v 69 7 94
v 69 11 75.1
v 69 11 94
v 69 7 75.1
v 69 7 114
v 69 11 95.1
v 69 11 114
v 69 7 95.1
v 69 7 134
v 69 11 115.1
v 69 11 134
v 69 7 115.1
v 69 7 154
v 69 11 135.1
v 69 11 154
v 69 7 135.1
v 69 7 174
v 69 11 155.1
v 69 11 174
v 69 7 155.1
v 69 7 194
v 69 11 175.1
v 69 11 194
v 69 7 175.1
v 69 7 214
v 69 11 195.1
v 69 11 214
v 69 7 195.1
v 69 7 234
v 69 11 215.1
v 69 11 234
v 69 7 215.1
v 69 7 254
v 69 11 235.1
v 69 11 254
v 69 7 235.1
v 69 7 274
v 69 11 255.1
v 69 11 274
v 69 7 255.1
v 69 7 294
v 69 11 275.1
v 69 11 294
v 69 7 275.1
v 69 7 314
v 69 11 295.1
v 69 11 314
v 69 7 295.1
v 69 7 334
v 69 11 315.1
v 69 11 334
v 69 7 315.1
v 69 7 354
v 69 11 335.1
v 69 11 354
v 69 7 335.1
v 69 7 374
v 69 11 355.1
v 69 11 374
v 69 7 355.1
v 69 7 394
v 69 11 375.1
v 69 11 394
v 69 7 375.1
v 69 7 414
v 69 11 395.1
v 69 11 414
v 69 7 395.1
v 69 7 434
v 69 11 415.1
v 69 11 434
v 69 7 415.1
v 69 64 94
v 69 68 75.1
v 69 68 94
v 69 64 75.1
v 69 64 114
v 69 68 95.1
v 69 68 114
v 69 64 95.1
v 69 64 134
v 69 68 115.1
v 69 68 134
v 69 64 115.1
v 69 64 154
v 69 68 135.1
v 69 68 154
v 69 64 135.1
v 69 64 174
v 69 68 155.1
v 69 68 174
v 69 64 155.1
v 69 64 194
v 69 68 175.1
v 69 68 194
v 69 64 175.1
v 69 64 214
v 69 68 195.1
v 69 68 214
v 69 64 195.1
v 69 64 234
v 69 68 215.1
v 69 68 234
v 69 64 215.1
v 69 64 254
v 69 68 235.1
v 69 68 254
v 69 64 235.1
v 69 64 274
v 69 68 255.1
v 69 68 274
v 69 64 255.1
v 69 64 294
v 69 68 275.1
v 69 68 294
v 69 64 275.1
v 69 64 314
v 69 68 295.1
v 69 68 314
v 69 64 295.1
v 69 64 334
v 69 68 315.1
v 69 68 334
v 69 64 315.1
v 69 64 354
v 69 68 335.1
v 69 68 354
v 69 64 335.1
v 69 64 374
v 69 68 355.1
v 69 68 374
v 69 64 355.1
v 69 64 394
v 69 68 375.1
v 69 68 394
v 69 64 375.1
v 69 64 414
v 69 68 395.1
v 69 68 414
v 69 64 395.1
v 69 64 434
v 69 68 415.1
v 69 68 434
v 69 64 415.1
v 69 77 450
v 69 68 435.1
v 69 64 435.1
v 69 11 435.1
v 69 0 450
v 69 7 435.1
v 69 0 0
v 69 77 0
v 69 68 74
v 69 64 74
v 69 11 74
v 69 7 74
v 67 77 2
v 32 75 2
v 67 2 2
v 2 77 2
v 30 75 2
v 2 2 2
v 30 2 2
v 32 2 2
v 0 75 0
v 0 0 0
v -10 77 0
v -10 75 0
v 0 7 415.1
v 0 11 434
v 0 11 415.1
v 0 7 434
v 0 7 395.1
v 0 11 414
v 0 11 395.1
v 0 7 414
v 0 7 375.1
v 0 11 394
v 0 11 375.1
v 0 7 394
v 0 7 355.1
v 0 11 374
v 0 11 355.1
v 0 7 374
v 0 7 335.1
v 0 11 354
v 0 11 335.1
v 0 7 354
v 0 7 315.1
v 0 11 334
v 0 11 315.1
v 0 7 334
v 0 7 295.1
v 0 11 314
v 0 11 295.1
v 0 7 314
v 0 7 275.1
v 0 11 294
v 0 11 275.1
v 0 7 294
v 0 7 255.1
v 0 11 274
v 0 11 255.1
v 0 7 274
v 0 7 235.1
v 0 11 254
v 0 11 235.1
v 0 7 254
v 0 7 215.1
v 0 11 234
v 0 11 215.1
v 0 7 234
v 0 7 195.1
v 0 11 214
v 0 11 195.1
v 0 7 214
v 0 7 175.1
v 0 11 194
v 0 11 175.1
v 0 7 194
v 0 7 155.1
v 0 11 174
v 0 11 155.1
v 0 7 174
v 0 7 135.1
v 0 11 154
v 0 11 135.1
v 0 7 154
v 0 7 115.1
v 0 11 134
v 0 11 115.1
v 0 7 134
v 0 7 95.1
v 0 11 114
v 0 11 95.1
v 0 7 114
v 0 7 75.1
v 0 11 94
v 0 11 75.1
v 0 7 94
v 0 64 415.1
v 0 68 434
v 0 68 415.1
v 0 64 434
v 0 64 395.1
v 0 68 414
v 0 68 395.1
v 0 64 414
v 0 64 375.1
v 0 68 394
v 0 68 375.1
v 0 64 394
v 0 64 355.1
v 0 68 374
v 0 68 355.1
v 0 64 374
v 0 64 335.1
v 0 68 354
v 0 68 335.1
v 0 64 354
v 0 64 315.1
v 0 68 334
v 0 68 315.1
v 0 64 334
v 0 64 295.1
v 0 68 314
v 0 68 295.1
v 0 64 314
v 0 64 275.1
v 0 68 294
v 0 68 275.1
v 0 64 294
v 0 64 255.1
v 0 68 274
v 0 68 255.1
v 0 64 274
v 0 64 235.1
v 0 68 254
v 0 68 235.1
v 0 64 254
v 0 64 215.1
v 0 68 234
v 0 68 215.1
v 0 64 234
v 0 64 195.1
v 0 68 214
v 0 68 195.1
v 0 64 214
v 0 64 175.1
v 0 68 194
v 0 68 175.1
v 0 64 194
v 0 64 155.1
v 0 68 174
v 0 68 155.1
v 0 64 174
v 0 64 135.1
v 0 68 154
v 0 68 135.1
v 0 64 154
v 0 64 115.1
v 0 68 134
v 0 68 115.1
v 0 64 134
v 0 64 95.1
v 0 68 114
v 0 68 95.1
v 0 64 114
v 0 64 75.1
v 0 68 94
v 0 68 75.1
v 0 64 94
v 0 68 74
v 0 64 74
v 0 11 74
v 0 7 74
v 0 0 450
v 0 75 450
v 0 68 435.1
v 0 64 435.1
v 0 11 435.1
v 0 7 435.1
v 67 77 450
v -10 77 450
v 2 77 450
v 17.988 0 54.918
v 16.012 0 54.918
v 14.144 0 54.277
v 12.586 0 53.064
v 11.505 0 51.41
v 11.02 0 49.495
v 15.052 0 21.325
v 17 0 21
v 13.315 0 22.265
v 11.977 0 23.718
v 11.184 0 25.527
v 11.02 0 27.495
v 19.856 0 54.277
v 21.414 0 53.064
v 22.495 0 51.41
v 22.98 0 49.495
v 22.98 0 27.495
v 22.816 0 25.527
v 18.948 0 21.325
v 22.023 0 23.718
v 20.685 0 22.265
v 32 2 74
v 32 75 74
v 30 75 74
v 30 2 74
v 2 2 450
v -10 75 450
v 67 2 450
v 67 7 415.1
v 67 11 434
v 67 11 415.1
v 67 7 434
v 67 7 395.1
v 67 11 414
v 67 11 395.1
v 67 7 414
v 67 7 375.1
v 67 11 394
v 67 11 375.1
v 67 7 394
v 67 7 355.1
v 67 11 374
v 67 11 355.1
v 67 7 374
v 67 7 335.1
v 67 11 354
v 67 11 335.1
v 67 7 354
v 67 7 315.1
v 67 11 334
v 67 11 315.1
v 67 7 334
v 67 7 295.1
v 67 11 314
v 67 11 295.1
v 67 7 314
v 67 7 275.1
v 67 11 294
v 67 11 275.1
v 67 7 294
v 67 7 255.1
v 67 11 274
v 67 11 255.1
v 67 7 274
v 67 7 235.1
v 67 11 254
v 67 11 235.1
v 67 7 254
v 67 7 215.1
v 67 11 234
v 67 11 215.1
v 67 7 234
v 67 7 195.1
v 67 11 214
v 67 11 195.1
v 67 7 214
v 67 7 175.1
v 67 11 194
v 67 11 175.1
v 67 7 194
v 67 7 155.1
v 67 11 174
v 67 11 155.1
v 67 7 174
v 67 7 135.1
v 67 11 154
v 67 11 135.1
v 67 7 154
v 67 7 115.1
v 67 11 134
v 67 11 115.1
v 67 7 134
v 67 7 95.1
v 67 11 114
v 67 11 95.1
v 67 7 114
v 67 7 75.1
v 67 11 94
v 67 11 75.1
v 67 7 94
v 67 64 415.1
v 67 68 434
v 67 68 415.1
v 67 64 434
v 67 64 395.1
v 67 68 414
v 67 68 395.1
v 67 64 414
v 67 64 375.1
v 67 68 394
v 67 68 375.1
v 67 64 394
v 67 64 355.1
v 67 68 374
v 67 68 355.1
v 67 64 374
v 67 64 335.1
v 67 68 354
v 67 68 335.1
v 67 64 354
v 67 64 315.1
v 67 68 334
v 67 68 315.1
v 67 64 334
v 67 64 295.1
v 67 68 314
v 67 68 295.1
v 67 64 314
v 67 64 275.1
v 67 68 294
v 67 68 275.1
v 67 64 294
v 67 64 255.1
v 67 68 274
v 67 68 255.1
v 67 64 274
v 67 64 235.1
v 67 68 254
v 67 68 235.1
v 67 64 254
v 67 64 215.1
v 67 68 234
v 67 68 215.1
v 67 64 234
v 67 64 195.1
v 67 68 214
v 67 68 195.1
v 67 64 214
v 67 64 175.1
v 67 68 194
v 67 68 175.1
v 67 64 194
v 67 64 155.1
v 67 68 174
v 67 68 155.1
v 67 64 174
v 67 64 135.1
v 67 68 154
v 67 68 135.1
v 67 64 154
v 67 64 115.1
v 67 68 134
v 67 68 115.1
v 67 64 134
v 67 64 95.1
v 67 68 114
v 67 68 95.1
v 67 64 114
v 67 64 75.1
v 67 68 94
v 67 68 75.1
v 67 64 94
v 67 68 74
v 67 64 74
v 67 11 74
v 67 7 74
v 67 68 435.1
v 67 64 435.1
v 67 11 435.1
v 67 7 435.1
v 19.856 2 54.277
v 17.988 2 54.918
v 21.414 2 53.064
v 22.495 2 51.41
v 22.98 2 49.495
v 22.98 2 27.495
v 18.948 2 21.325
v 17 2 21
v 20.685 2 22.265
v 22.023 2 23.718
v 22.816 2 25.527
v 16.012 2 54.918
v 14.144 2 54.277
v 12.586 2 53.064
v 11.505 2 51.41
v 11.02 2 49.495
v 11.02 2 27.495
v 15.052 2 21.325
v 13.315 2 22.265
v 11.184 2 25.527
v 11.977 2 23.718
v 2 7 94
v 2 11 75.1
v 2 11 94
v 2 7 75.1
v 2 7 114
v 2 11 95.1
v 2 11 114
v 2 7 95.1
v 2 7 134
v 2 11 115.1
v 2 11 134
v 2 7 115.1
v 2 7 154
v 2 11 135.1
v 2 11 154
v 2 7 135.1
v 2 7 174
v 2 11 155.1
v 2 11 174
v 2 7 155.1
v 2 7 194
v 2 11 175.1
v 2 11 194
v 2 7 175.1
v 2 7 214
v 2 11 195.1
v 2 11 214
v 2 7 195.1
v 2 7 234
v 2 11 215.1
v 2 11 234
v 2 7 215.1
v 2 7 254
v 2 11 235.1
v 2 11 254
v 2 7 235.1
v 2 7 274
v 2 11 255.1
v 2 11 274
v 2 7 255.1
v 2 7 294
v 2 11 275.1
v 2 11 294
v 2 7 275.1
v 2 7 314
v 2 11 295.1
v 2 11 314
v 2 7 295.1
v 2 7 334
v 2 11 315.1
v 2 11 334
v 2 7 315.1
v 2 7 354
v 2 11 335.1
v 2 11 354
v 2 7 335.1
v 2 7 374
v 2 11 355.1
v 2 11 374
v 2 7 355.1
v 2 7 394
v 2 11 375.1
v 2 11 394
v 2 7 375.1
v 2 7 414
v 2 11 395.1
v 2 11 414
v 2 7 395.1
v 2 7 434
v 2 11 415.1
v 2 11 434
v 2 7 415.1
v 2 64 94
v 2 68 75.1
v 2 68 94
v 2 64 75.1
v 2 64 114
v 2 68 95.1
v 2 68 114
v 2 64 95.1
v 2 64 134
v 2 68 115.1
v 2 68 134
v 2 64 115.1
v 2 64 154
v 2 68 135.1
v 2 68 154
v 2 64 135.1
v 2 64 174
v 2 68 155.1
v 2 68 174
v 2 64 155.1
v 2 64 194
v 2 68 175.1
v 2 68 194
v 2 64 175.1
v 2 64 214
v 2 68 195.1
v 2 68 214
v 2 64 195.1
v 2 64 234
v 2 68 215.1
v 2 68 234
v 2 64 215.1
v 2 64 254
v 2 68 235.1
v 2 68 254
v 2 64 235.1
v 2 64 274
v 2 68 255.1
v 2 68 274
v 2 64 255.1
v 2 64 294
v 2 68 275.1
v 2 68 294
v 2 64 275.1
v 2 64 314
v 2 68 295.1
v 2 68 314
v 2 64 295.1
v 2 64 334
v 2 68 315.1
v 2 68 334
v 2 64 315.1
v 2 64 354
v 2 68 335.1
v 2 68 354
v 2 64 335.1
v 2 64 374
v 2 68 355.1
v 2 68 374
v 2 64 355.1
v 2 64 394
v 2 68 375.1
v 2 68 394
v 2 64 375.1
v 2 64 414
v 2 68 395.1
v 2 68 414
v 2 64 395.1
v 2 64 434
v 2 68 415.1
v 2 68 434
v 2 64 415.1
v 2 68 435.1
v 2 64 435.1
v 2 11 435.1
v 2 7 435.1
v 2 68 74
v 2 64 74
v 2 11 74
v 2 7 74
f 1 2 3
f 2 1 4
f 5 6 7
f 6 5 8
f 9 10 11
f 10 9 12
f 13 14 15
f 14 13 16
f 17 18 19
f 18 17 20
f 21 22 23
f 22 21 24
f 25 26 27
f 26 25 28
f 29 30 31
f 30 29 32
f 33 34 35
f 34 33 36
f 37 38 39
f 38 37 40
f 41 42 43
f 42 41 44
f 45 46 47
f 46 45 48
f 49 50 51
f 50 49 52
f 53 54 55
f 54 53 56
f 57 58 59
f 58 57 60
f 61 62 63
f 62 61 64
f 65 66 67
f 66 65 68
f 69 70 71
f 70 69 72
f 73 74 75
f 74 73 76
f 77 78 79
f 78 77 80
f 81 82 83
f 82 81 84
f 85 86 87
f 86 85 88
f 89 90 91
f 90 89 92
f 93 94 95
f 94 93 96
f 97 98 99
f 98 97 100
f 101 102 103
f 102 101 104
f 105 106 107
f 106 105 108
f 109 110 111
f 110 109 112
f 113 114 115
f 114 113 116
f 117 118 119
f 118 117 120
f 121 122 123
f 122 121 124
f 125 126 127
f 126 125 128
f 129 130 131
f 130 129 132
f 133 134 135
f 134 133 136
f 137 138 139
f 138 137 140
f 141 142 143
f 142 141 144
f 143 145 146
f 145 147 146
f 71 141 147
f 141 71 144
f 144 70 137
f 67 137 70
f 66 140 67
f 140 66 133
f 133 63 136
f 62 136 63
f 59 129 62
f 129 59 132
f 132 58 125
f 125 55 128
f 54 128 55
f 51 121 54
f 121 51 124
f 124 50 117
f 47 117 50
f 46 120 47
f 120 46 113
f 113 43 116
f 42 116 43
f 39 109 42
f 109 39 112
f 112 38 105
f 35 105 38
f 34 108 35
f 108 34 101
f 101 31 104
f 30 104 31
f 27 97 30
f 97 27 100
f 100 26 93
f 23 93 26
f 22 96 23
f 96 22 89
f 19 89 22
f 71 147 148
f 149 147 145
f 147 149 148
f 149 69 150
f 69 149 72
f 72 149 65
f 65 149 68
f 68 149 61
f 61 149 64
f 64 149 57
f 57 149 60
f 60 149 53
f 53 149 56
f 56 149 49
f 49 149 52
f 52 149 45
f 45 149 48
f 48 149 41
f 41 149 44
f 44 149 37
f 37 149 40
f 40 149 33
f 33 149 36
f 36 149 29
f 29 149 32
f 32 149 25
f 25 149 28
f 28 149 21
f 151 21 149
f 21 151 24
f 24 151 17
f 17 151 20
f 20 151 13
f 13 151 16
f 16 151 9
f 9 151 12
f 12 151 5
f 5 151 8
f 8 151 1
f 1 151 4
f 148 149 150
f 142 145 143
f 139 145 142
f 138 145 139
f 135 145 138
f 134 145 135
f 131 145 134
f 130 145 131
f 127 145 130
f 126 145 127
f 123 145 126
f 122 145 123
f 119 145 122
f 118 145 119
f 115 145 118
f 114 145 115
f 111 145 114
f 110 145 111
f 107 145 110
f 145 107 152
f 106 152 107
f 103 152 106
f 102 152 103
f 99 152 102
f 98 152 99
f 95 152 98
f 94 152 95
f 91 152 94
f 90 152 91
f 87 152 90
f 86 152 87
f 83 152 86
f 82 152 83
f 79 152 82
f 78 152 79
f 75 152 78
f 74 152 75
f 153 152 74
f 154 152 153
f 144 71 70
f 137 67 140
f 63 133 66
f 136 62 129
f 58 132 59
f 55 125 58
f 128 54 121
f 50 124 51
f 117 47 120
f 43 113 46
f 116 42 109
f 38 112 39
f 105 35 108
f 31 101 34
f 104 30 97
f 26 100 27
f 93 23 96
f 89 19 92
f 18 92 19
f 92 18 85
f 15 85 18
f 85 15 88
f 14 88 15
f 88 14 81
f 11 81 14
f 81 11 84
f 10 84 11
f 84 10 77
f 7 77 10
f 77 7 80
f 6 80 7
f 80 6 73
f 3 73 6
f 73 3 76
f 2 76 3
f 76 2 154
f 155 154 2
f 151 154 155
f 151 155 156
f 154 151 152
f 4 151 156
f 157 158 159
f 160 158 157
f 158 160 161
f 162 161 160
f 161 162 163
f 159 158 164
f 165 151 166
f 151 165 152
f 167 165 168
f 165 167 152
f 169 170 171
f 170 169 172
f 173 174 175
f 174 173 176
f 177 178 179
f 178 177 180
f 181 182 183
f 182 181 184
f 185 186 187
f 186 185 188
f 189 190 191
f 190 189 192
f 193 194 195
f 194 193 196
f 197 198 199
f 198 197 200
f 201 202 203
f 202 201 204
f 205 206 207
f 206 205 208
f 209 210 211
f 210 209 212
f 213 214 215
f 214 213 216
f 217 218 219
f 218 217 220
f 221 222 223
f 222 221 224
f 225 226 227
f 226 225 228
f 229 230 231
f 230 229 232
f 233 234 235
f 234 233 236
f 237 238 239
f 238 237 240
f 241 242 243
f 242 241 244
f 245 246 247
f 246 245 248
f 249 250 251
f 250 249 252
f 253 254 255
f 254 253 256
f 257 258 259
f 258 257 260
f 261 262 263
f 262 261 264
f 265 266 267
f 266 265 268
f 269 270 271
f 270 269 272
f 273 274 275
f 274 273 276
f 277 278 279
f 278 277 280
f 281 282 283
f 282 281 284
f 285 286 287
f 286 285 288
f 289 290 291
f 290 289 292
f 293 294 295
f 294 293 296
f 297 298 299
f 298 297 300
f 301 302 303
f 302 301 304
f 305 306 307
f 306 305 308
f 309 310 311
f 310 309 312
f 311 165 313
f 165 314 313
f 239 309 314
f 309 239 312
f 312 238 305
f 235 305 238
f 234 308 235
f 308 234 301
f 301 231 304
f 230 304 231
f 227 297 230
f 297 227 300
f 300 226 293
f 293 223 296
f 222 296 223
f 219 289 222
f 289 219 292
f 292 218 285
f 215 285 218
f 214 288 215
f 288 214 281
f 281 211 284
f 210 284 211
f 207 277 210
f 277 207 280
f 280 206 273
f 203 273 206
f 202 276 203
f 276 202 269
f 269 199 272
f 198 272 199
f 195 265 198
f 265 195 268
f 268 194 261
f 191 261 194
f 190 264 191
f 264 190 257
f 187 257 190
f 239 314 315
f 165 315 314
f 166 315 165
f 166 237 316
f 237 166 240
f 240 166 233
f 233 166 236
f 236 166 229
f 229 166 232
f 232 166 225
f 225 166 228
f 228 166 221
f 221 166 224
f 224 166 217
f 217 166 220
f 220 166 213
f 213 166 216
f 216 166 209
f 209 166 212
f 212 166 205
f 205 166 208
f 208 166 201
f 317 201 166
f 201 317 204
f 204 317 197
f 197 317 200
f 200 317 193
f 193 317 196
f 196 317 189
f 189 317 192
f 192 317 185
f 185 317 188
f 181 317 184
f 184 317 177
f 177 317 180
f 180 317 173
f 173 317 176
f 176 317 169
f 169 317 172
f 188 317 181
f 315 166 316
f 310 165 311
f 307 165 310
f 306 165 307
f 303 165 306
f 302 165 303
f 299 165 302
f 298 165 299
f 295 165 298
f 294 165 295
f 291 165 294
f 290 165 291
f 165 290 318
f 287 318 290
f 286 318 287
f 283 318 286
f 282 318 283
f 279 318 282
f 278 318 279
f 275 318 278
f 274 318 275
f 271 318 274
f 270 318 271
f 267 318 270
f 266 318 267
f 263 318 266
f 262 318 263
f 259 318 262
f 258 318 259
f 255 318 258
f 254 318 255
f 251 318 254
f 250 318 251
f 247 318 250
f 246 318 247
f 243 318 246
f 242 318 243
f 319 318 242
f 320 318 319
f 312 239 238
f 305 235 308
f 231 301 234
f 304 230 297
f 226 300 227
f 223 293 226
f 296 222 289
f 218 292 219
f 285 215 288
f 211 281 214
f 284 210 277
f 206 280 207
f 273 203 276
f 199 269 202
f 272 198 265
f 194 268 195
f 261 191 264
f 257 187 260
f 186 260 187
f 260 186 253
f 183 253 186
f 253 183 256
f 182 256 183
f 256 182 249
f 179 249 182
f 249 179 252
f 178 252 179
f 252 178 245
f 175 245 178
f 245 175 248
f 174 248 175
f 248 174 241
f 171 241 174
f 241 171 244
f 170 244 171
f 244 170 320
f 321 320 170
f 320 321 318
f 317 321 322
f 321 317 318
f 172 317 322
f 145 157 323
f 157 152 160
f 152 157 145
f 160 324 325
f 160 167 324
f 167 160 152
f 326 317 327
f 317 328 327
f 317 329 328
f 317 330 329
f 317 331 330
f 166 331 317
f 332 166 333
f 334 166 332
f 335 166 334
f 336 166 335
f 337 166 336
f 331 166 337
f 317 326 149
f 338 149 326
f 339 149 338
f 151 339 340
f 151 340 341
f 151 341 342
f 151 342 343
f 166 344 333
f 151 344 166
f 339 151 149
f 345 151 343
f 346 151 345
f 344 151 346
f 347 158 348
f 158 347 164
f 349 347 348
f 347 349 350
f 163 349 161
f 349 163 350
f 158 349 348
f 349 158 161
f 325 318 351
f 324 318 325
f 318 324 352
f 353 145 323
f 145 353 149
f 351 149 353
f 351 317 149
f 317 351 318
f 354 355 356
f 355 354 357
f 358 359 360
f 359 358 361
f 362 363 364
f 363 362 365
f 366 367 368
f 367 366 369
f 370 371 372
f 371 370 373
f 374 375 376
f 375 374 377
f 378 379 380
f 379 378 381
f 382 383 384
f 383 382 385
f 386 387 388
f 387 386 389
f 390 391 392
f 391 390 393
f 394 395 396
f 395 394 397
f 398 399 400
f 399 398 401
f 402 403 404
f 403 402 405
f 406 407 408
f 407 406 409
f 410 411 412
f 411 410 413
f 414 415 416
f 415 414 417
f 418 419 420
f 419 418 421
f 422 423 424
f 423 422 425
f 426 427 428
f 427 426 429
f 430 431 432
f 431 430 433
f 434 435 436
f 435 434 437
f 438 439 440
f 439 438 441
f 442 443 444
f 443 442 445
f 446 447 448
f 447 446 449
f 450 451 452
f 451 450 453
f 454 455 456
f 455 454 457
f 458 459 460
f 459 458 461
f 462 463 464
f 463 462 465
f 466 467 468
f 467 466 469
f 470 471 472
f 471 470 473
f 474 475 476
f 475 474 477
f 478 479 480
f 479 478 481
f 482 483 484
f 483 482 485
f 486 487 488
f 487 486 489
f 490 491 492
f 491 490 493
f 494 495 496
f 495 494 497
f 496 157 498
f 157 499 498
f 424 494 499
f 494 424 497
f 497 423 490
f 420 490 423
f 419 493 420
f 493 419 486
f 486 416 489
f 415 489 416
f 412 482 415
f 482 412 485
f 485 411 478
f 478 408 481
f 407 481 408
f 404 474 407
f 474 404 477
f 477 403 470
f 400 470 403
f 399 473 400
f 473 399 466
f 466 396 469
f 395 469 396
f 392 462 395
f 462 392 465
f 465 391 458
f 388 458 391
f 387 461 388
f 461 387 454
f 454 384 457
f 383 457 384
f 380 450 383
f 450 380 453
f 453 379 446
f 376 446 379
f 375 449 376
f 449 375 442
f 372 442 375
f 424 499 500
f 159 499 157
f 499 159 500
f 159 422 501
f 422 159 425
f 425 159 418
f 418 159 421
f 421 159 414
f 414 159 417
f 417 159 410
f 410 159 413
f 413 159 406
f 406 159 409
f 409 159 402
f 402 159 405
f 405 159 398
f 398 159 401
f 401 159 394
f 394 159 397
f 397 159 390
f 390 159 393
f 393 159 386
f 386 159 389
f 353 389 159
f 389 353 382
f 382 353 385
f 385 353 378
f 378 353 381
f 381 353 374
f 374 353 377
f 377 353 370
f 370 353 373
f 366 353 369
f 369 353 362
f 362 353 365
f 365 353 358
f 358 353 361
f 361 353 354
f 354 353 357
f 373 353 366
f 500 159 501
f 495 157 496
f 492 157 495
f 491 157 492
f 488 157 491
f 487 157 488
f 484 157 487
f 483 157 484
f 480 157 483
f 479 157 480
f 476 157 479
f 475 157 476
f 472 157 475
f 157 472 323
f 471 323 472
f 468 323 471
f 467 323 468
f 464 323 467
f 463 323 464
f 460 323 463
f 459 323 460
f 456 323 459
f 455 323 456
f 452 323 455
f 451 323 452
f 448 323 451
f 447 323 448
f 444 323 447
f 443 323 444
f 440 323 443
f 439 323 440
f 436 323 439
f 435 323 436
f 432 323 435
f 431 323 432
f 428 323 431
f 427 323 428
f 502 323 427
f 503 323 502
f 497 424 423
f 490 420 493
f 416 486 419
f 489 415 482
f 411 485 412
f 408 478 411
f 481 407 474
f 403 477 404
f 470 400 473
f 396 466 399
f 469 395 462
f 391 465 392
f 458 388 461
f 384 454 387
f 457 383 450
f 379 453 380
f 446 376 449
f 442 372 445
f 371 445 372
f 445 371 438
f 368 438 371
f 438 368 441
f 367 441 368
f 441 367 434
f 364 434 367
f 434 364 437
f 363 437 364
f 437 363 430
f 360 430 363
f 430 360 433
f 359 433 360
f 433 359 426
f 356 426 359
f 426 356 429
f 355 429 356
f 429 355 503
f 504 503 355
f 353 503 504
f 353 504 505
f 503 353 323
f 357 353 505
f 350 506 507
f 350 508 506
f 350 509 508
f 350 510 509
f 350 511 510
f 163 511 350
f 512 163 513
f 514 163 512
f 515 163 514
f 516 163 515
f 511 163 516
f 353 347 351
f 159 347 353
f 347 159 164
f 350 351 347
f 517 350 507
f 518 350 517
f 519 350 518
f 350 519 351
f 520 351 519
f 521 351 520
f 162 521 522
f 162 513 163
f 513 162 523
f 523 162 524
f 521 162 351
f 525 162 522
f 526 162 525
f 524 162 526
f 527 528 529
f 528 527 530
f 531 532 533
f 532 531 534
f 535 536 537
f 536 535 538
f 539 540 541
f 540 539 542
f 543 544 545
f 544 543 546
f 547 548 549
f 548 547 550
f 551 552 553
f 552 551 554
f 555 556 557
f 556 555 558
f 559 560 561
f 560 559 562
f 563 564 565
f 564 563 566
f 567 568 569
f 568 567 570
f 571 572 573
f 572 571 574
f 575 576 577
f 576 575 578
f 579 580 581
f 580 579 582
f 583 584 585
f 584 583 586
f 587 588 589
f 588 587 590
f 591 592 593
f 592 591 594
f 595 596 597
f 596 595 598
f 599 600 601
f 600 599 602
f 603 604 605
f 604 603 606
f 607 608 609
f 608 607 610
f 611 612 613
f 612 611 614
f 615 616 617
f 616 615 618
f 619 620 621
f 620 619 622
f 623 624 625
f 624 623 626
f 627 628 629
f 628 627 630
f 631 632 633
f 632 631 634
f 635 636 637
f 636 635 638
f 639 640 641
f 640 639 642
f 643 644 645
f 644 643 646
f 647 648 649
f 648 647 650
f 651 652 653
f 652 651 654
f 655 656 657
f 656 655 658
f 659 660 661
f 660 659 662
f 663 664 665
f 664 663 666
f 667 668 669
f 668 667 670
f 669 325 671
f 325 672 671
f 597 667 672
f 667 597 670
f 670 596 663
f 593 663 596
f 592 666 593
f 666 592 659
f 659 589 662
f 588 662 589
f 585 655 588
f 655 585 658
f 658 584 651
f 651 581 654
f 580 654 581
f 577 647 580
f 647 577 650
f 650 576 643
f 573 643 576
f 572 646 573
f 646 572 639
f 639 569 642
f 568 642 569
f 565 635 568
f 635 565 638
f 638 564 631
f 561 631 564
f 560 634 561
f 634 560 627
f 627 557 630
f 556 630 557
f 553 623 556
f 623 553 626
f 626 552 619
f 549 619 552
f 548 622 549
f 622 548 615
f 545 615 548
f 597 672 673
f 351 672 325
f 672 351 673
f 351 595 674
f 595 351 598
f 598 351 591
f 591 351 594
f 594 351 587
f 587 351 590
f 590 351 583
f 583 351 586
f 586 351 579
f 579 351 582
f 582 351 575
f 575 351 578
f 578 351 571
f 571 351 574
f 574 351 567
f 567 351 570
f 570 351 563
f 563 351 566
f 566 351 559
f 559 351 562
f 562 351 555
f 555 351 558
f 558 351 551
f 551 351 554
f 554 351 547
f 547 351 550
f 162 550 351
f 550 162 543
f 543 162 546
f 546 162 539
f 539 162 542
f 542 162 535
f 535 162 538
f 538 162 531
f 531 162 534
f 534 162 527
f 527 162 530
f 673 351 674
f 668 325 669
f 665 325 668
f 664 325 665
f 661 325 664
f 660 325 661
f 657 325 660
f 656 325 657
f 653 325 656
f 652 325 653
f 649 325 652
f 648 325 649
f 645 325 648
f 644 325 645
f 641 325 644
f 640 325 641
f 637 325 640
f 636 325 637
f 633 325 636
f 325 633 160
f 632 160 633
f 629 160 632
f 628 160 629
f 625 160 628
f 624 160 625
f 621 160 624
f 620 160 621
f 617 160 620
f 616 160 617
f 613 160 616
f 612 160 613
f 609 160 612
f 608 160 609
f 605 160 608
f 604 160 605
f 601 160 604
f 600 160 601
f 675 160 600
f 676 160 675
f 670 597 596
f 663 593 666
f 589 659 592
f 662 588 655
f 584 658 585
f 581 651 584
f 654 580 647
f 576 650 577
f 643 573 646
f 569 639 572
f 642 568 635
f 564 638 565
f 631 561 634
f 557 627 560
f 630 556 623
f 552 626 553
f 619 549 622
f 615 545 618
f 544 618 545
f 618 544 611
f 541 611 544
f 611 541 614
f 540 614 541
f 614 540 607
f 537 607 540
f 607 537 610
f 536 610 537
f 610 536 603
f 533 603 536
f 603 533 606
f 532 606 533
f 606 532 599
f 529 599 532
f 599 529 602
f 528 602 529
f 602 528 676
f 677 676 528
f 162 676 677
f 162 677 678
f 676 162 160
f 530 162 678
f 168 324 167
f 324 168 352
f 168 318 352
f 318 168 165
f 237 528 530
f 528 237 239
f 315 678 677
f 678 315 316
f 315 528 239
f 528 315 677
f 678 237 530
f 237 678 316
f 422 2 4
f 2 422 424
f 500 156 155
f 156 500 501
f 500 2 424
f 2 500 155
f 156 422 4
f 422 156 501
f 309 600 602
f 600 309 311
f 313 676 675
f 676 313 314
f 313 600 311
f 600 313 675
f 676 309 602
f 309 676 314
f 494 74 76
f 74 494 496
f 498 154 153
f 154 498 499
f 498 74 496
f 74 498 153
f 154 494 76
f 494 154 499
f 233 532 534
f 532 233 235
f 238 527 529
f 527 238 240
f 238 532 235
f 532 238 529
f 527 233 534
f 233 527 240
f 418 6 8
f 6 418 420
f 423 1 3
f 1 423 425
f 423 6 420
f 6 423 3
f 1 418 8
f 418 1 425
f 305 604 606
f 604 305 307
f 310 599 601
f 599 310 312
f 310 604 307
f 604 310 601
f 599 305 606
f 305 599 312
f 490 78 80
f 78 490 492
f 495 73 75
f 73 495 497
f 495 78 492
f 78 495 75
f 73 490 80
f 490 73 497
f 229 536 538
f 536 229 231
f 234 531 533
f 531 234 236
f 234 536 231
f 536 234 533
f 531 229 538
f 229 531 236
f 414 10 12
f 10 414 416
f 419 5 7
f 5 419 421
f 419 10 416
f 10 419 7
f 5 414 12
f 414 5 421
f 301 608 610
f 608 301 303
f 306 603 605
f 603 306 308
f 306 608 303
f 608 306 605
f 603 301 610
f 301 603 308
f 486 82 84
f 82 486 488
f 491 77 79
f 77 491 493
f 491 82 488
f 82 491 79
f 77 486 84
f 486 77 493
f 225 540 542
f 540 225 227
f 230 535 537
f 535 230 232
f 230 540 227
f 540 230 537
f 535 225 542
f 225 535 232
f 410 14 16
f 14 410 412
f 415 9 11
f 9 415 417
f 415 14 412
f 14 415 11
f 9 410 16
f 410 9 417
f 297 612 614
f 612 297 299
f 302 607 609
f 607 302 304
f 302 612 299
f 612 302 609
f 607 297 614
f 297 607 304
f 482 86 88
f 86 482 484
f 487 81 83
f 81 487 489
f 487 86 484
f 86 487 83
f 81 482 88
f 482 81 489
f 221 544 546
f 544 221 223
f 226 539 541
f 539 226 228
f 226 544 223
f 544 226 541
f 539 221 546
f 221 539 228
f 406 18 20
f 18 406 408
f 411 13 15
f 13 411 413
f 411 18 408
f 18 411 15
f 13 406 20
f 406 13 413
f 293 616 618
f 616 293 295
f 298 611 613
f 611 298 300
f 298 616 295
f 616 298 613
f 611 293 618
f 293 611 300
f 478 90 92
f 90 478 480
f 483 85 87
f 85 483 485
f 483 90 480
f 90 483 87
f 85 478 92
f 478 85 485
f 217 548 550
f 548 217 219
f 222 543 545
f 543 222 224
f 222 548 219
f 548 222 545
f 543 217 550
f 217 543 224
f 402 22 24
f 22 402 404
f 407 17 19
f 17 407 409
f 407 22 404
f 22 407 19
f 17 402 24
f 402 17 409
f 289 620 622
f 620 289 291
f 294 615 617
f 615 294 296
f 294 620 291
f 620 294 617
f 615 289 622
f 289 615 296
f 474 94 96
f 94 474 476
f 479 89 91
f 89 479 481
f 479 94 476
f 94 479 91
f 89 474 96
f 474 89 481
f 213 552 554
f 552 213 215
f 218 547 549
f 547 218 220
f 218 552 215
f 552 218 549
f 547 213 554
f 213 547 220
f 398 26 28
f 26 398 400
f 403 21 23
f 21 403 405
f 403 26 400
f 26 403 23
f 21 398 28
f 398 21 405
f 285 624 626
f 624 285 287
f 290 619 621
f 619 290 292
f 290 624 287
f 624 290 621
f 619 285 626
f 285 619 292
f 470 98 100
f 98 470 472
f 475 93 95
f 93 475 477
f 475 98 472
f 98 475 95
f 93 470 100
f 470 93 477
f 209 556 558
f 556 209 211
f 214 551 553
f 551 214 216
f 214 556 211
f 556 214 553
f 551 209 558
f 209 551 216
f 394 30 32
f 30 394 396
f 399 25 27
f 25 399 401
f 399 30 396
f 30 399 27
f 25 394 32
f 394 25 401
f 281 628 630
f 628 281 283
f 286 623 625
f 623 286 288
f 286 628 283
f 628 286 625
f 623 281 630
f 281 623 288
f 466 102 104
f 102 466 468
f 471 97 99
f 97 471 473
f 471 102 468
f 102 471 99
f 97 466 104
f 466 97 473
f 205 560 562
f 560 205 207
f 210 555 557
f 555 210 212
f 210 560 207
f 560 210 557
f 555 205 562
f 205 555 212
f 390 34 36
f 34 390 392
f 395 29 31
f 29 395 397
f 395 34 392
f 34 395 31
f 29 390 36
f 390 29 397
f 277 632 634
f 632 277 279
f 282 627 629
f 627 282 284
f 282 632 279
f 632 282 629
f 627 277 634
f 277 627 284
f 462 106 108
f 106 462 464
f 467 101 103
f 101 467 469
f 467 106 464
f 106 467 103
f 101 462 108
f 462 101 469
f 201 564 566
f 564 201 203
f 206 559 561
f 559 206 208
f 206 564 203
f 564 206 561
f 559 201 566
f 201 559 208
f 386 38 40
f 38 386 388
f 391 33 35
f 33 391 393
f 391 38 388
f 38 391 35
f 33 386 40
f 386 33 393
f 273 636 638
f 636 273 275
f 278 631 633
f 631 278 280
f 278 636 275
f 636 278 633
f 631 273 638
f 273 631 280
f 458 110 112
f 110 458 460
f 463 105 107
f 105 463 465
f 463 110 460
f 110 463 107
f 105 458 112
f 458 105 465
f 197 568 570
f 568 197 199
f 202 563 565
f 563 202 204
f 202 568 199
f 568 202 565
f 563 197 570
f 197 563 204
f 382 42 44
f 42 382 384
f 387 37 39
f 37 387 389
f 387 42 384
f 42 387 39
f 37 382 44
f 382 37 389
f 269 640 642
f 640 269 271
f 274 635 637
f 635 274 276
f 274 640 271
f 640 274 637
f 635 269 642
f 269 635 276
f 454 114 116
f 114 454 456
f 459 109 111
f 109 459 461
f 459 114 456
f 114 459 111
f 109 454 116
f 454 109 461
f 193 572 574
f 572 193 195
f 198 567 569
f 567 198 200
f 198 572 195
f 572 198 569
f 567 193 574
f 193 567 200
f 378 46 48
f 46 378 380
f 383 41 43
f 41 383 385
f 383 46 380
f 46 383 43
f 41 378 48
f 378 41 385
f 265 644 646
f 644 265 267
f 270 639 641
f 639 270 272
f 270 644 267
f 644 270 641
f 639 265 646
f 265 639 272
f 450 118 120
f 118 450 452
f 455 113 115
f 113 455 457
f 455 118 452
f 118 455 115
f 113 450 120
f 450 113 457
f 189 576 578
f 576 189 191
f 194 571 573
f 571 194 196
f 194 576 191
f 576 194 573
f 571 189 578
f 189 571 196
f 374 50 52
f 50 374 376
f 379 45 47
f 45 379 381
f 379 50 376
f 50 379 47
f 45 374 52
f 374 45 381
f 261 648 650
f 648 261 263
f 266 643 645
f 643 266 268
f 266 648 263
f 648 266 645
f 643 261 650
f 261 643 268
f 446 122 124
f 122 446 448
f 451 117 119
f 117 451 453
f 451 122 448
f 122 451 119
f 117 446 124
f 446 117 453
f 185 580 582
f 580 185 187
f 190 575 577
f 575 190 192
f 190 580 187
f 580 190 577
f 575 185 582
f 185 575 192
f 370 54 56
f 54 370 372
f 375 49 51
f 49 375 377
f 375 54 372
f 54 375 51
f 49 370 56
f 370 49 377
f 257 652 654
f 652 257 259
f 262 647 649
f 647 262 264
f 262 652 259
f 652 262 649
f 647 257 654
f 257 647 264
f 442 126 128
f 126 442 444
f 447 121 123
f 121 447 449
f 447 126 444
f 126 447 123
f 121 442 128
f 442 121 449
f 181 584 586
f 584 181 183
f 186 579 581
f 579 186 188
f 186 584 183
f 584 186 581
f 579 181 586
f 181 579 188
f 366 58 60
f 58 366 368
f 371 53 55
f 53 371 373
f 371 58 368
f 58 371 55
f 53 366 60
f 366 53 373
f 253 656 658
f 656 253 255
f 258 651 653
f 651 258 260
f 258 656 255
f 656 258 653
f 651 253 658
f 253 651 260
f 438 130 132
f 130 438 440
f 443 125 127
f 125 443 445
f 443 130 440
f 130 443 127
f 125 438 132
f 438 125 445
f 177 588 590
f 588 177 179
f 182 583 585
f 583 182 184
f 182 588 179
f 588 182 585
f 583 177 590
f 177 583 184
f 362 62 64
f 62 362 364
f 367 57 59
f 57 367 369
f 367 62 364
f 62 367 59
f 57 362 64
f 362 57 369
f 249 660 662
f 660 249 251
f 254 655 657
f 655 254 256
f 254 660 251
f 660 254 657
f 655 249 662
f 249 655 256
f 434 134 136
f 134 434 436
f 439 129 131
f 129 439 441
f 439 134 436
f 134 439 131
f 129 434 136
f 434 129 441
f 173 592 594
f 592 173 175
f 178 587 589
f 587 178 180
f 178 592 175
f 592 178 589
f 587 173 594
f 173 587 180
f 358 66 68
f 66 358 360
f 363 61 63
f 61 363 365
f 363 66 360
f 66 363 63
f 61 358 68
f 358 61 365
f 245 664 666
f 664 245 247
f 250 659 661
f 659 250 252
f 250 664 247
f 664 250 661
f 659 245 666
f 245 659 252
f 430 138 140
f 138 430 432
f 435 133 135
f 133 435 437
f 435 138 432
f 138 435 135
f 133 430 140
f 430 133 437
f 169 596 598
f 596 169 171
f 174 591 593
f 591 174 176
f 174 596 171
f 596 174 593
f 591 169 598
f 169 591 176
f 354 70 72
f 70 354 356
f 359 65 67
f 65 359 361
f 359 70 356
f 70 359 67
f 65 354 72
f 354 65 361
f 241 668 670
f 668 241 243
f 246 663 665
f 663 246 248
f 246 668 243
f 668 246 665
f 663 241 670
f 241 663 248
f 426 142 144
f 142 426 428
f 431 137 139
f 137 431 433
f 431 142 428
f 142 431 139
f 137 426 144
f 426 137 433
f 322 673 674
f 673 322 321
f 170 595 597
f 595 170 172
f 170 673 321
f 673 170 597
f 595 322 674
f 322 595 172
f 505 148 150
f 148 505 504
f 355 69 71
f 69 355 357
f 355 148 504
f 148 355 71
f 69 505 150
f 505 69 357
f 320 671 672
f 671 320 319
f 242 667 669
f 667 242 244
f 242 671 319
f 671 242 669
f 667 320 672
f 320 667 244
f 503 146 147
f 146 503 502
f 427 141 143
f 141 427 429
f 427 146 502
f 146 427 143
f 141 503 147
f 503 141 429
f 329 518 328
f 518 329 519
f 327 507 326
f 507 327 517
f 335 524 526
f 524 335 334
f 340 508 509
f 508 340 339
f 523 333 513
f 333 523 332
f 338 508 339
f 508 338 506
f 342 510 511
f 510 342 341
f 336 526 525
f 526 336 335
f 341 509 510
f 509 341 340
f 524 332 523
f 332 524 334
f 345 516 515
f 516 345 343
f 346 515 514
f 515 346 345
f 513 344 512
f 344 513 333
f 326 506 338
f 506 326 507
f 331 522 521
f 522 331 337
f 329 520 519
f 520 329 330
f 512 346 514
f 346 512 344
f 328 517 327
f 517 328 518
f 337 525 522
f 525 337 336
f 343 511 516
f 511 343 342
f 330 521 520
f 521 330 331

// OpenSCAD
total_l = 450;
gap = 69;
depth = 75;
lip = 10;
t = 2;
charger_w = 72;
charger_h = 30;

module two_d_shape() {
  square([t, depth+t]);
  square([gap, t]);
  translate([gap-t, 0, 0])
    square([t, depth+t]);
  translate([-lip, depth, 0])
    square([lip, t]);
}

module extrusion() {
  linear_extrude(total_l)
    two_d_shape();
}

module shell() {
  extrusion();

  color("blue") {
    cube([gap, depth+t, t]);
    translate([charger_h, 0, t])
      cube([t, depth, charger_w]);
  }
}

hole_interval = 20;
hole_h = 2*t;
hole_w = 1.1;
holes_gap = depth - hole_h*2 - 10;
  
module holes() {
  color("red")
  for (i = [0 : 1 : (total_l-charger_w-t)/hole_interval]) {
    translate([0, 5+t, t+charger_w+i*hole_interval])
      cube([t, hole_h, hole_w]);
    
    translate([gap-t, 5+t, t+charger_w+i*hole_interval])
      cube([t, hole_h, hole_w]);
    
    translate([0, 5+t+holes_gap, t+charger_w+i*hole_interval])
      cube([t, hole_h, hole_w]);
    
    translate([gap-t, 5+t+holes_gap, t+charger_w+i*hole_interval])
      cube([t, hole_h, hole_w]);
  }
}

module hole() {
  linear_extrude(5) {
    hull() {
      translate([11, 0, 0])
      circle(d = 12);
      translate([-11, 0, 0])
      circle(d = 12);
    }
  }
}

module final() {
  difference() {
    shell();
    holes();
    translate([t+charger_h/2, 3, t+charger_w/2])
    rotate([90, 90, 0])
      hole();
  }
}

module divider() {
  linear_extrude(1) {
    translate([t, t, 0])
      square([gap-2*t, depth]);
    
    translate([0, 5+t, 0])
        square([t, hole_h]);
      
      translate([gap-t, 5+t, 0])
        square([t, hole_h,]);
      
      translate([0, 5+t+holes_gap, 0])
        square([t, hole_h]);
      
      translate([gap-t, 5+t+holes_gap, 0])
        square([t, hole_h]);
  }
}

//divider();

final();
